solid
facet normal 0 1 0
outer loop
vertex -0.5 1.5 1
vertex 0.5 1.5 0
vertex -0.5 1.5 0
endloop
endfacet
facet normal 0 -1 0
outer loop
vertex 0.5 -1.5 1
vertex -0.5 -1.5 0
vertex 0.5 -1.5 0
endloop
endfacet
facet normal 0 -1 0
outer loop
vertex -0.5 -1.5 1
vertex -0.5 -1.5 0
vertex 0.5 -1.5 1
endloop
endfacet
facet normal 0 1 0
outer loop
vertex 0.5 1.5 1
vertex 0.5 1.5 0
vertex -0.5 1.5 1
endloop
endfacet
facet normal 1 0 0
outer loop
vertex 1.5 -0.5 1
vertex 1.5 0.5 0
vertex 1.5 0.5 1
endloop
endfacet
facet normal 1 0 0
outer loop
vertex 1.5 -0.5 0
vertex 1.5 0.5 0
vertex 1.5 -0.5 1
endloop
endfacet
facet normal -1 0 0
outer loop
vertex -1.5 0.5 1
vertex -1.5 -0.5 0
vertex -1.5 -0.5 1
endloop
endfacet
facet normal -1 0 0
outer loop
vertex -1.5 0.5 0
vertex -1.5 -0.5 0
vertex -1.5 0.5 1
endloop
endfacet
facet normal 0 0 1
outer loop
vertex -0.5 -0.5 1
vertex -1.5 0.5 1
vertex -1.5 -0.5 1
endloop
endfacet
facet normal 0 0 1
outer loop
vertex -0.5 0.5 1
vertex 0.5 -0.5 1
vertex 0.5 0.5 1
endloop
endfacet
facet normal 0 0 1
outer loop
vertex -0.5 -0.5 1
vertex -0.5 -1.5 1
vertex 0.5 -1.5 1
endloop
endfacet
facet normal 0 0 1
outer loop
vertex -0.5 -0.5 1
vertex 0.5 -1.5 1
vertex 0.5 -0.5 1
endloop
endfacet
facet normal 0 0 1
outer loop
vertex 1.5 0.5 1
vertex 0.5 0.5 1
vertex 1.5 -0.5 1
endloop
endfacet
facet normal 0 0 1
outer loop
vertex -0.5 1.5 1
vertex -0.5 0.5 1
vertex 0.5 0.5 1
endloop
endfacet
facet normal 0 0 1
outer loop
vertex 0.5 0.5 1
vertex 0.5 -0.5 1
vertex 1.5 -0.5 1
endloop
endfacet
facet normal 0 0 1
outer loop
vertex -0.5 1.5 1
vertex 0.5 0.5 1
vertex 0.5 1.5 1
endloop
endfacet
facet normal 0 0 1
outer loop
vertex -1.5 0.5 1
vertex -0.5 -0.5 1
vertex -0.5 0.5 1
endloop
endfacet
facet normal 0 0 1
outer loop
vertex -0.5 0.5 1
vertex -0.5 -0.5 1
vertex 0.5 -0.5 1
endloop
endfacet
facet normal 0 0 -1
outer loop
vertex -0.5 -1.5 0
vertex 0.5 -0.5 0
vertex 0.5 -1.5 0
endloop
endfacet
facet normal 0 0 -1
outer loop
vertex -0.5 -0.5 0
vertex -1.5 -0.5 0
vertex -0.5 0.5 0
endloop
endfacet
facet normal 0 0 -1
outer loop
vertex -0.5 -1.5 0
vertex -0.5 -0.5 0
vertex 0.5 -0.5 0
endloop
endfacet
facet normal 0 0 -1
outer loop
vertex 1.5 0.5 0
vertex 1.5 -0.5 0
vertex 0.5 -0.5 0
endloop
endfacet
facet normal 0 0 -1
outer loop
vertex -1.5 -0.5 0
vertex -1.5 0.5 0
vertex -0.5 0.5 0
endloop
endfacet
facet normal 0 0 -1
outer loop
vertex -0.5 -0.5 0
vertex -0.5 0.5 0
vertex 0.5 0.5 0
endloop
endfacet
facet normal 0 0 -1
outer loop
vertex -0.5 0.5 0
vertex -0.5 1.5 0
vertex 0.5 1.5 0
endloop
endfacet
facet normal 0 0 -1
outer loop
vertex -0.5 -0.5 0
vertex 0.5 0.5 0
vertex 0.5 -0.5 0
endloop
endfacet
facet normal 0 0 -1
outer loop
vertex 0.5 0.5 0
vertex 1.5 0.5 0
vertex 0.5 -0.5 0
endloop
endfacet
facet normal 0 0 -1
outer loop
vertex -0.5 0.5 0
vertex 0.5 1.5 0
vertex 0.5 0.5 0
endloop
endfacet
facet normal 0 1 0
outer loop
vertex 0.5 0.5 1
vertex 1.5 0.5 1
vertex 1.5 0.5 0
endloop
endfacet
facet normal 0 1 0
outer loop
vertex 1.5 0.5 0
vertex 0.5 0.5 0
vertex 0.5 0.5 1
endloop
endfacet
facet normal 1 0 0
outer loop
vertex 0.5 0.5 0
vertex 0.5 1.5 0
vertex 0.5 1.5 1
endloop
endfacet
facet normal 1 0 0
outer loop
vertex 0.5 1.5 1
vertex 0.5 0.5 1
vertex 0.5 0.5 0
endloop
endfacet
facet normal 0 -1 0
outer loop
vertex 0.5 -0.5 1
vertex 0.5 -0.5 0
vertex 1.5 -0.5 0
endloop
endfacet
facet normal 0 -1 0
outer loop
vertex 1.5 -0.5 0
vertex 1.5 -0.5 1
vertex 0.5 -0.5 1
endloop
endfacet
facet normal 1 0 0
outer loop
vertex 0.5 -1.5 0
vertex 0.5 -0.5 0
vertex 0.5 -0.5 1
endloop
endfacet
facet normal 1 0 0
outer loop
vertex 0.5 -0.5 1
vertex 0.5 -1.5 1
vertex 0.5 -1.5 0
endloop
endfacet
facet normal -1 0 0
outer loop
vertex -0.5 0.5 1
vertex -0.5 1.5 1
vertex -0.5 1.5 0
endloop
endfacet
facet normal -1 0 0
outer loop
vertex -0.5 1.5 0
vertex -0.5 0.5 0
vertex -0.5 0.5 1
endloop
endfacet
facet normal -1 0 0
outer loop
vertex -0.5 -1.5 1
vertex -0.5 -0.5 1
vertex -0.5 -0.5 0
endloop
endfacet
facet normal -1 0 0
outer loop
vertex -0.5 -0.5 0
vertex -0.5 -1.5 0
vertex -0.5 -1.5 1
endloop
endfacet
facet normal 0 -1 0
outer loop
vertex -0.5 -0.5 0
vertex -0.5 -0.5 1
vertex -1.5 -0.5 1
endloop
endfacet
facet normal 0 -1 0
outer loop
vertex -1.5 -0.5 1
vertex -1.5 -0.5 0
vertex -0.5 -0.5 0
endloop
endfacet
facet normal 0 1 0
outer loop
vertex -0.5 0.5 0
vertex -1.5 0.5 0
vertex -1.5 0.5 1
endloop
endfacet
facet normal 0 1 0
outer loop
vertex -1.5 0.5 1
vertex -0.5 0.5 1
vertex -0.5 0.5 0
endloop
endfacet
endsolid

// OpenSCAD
// 3D Minus for Stacks of Shapes
// Copyright Slashee the Cow
color("IndianRed")
translate([0,0,0.5]){
    cube([3,1,1],center=true);
    cube([1,3,1],center=true);
}
